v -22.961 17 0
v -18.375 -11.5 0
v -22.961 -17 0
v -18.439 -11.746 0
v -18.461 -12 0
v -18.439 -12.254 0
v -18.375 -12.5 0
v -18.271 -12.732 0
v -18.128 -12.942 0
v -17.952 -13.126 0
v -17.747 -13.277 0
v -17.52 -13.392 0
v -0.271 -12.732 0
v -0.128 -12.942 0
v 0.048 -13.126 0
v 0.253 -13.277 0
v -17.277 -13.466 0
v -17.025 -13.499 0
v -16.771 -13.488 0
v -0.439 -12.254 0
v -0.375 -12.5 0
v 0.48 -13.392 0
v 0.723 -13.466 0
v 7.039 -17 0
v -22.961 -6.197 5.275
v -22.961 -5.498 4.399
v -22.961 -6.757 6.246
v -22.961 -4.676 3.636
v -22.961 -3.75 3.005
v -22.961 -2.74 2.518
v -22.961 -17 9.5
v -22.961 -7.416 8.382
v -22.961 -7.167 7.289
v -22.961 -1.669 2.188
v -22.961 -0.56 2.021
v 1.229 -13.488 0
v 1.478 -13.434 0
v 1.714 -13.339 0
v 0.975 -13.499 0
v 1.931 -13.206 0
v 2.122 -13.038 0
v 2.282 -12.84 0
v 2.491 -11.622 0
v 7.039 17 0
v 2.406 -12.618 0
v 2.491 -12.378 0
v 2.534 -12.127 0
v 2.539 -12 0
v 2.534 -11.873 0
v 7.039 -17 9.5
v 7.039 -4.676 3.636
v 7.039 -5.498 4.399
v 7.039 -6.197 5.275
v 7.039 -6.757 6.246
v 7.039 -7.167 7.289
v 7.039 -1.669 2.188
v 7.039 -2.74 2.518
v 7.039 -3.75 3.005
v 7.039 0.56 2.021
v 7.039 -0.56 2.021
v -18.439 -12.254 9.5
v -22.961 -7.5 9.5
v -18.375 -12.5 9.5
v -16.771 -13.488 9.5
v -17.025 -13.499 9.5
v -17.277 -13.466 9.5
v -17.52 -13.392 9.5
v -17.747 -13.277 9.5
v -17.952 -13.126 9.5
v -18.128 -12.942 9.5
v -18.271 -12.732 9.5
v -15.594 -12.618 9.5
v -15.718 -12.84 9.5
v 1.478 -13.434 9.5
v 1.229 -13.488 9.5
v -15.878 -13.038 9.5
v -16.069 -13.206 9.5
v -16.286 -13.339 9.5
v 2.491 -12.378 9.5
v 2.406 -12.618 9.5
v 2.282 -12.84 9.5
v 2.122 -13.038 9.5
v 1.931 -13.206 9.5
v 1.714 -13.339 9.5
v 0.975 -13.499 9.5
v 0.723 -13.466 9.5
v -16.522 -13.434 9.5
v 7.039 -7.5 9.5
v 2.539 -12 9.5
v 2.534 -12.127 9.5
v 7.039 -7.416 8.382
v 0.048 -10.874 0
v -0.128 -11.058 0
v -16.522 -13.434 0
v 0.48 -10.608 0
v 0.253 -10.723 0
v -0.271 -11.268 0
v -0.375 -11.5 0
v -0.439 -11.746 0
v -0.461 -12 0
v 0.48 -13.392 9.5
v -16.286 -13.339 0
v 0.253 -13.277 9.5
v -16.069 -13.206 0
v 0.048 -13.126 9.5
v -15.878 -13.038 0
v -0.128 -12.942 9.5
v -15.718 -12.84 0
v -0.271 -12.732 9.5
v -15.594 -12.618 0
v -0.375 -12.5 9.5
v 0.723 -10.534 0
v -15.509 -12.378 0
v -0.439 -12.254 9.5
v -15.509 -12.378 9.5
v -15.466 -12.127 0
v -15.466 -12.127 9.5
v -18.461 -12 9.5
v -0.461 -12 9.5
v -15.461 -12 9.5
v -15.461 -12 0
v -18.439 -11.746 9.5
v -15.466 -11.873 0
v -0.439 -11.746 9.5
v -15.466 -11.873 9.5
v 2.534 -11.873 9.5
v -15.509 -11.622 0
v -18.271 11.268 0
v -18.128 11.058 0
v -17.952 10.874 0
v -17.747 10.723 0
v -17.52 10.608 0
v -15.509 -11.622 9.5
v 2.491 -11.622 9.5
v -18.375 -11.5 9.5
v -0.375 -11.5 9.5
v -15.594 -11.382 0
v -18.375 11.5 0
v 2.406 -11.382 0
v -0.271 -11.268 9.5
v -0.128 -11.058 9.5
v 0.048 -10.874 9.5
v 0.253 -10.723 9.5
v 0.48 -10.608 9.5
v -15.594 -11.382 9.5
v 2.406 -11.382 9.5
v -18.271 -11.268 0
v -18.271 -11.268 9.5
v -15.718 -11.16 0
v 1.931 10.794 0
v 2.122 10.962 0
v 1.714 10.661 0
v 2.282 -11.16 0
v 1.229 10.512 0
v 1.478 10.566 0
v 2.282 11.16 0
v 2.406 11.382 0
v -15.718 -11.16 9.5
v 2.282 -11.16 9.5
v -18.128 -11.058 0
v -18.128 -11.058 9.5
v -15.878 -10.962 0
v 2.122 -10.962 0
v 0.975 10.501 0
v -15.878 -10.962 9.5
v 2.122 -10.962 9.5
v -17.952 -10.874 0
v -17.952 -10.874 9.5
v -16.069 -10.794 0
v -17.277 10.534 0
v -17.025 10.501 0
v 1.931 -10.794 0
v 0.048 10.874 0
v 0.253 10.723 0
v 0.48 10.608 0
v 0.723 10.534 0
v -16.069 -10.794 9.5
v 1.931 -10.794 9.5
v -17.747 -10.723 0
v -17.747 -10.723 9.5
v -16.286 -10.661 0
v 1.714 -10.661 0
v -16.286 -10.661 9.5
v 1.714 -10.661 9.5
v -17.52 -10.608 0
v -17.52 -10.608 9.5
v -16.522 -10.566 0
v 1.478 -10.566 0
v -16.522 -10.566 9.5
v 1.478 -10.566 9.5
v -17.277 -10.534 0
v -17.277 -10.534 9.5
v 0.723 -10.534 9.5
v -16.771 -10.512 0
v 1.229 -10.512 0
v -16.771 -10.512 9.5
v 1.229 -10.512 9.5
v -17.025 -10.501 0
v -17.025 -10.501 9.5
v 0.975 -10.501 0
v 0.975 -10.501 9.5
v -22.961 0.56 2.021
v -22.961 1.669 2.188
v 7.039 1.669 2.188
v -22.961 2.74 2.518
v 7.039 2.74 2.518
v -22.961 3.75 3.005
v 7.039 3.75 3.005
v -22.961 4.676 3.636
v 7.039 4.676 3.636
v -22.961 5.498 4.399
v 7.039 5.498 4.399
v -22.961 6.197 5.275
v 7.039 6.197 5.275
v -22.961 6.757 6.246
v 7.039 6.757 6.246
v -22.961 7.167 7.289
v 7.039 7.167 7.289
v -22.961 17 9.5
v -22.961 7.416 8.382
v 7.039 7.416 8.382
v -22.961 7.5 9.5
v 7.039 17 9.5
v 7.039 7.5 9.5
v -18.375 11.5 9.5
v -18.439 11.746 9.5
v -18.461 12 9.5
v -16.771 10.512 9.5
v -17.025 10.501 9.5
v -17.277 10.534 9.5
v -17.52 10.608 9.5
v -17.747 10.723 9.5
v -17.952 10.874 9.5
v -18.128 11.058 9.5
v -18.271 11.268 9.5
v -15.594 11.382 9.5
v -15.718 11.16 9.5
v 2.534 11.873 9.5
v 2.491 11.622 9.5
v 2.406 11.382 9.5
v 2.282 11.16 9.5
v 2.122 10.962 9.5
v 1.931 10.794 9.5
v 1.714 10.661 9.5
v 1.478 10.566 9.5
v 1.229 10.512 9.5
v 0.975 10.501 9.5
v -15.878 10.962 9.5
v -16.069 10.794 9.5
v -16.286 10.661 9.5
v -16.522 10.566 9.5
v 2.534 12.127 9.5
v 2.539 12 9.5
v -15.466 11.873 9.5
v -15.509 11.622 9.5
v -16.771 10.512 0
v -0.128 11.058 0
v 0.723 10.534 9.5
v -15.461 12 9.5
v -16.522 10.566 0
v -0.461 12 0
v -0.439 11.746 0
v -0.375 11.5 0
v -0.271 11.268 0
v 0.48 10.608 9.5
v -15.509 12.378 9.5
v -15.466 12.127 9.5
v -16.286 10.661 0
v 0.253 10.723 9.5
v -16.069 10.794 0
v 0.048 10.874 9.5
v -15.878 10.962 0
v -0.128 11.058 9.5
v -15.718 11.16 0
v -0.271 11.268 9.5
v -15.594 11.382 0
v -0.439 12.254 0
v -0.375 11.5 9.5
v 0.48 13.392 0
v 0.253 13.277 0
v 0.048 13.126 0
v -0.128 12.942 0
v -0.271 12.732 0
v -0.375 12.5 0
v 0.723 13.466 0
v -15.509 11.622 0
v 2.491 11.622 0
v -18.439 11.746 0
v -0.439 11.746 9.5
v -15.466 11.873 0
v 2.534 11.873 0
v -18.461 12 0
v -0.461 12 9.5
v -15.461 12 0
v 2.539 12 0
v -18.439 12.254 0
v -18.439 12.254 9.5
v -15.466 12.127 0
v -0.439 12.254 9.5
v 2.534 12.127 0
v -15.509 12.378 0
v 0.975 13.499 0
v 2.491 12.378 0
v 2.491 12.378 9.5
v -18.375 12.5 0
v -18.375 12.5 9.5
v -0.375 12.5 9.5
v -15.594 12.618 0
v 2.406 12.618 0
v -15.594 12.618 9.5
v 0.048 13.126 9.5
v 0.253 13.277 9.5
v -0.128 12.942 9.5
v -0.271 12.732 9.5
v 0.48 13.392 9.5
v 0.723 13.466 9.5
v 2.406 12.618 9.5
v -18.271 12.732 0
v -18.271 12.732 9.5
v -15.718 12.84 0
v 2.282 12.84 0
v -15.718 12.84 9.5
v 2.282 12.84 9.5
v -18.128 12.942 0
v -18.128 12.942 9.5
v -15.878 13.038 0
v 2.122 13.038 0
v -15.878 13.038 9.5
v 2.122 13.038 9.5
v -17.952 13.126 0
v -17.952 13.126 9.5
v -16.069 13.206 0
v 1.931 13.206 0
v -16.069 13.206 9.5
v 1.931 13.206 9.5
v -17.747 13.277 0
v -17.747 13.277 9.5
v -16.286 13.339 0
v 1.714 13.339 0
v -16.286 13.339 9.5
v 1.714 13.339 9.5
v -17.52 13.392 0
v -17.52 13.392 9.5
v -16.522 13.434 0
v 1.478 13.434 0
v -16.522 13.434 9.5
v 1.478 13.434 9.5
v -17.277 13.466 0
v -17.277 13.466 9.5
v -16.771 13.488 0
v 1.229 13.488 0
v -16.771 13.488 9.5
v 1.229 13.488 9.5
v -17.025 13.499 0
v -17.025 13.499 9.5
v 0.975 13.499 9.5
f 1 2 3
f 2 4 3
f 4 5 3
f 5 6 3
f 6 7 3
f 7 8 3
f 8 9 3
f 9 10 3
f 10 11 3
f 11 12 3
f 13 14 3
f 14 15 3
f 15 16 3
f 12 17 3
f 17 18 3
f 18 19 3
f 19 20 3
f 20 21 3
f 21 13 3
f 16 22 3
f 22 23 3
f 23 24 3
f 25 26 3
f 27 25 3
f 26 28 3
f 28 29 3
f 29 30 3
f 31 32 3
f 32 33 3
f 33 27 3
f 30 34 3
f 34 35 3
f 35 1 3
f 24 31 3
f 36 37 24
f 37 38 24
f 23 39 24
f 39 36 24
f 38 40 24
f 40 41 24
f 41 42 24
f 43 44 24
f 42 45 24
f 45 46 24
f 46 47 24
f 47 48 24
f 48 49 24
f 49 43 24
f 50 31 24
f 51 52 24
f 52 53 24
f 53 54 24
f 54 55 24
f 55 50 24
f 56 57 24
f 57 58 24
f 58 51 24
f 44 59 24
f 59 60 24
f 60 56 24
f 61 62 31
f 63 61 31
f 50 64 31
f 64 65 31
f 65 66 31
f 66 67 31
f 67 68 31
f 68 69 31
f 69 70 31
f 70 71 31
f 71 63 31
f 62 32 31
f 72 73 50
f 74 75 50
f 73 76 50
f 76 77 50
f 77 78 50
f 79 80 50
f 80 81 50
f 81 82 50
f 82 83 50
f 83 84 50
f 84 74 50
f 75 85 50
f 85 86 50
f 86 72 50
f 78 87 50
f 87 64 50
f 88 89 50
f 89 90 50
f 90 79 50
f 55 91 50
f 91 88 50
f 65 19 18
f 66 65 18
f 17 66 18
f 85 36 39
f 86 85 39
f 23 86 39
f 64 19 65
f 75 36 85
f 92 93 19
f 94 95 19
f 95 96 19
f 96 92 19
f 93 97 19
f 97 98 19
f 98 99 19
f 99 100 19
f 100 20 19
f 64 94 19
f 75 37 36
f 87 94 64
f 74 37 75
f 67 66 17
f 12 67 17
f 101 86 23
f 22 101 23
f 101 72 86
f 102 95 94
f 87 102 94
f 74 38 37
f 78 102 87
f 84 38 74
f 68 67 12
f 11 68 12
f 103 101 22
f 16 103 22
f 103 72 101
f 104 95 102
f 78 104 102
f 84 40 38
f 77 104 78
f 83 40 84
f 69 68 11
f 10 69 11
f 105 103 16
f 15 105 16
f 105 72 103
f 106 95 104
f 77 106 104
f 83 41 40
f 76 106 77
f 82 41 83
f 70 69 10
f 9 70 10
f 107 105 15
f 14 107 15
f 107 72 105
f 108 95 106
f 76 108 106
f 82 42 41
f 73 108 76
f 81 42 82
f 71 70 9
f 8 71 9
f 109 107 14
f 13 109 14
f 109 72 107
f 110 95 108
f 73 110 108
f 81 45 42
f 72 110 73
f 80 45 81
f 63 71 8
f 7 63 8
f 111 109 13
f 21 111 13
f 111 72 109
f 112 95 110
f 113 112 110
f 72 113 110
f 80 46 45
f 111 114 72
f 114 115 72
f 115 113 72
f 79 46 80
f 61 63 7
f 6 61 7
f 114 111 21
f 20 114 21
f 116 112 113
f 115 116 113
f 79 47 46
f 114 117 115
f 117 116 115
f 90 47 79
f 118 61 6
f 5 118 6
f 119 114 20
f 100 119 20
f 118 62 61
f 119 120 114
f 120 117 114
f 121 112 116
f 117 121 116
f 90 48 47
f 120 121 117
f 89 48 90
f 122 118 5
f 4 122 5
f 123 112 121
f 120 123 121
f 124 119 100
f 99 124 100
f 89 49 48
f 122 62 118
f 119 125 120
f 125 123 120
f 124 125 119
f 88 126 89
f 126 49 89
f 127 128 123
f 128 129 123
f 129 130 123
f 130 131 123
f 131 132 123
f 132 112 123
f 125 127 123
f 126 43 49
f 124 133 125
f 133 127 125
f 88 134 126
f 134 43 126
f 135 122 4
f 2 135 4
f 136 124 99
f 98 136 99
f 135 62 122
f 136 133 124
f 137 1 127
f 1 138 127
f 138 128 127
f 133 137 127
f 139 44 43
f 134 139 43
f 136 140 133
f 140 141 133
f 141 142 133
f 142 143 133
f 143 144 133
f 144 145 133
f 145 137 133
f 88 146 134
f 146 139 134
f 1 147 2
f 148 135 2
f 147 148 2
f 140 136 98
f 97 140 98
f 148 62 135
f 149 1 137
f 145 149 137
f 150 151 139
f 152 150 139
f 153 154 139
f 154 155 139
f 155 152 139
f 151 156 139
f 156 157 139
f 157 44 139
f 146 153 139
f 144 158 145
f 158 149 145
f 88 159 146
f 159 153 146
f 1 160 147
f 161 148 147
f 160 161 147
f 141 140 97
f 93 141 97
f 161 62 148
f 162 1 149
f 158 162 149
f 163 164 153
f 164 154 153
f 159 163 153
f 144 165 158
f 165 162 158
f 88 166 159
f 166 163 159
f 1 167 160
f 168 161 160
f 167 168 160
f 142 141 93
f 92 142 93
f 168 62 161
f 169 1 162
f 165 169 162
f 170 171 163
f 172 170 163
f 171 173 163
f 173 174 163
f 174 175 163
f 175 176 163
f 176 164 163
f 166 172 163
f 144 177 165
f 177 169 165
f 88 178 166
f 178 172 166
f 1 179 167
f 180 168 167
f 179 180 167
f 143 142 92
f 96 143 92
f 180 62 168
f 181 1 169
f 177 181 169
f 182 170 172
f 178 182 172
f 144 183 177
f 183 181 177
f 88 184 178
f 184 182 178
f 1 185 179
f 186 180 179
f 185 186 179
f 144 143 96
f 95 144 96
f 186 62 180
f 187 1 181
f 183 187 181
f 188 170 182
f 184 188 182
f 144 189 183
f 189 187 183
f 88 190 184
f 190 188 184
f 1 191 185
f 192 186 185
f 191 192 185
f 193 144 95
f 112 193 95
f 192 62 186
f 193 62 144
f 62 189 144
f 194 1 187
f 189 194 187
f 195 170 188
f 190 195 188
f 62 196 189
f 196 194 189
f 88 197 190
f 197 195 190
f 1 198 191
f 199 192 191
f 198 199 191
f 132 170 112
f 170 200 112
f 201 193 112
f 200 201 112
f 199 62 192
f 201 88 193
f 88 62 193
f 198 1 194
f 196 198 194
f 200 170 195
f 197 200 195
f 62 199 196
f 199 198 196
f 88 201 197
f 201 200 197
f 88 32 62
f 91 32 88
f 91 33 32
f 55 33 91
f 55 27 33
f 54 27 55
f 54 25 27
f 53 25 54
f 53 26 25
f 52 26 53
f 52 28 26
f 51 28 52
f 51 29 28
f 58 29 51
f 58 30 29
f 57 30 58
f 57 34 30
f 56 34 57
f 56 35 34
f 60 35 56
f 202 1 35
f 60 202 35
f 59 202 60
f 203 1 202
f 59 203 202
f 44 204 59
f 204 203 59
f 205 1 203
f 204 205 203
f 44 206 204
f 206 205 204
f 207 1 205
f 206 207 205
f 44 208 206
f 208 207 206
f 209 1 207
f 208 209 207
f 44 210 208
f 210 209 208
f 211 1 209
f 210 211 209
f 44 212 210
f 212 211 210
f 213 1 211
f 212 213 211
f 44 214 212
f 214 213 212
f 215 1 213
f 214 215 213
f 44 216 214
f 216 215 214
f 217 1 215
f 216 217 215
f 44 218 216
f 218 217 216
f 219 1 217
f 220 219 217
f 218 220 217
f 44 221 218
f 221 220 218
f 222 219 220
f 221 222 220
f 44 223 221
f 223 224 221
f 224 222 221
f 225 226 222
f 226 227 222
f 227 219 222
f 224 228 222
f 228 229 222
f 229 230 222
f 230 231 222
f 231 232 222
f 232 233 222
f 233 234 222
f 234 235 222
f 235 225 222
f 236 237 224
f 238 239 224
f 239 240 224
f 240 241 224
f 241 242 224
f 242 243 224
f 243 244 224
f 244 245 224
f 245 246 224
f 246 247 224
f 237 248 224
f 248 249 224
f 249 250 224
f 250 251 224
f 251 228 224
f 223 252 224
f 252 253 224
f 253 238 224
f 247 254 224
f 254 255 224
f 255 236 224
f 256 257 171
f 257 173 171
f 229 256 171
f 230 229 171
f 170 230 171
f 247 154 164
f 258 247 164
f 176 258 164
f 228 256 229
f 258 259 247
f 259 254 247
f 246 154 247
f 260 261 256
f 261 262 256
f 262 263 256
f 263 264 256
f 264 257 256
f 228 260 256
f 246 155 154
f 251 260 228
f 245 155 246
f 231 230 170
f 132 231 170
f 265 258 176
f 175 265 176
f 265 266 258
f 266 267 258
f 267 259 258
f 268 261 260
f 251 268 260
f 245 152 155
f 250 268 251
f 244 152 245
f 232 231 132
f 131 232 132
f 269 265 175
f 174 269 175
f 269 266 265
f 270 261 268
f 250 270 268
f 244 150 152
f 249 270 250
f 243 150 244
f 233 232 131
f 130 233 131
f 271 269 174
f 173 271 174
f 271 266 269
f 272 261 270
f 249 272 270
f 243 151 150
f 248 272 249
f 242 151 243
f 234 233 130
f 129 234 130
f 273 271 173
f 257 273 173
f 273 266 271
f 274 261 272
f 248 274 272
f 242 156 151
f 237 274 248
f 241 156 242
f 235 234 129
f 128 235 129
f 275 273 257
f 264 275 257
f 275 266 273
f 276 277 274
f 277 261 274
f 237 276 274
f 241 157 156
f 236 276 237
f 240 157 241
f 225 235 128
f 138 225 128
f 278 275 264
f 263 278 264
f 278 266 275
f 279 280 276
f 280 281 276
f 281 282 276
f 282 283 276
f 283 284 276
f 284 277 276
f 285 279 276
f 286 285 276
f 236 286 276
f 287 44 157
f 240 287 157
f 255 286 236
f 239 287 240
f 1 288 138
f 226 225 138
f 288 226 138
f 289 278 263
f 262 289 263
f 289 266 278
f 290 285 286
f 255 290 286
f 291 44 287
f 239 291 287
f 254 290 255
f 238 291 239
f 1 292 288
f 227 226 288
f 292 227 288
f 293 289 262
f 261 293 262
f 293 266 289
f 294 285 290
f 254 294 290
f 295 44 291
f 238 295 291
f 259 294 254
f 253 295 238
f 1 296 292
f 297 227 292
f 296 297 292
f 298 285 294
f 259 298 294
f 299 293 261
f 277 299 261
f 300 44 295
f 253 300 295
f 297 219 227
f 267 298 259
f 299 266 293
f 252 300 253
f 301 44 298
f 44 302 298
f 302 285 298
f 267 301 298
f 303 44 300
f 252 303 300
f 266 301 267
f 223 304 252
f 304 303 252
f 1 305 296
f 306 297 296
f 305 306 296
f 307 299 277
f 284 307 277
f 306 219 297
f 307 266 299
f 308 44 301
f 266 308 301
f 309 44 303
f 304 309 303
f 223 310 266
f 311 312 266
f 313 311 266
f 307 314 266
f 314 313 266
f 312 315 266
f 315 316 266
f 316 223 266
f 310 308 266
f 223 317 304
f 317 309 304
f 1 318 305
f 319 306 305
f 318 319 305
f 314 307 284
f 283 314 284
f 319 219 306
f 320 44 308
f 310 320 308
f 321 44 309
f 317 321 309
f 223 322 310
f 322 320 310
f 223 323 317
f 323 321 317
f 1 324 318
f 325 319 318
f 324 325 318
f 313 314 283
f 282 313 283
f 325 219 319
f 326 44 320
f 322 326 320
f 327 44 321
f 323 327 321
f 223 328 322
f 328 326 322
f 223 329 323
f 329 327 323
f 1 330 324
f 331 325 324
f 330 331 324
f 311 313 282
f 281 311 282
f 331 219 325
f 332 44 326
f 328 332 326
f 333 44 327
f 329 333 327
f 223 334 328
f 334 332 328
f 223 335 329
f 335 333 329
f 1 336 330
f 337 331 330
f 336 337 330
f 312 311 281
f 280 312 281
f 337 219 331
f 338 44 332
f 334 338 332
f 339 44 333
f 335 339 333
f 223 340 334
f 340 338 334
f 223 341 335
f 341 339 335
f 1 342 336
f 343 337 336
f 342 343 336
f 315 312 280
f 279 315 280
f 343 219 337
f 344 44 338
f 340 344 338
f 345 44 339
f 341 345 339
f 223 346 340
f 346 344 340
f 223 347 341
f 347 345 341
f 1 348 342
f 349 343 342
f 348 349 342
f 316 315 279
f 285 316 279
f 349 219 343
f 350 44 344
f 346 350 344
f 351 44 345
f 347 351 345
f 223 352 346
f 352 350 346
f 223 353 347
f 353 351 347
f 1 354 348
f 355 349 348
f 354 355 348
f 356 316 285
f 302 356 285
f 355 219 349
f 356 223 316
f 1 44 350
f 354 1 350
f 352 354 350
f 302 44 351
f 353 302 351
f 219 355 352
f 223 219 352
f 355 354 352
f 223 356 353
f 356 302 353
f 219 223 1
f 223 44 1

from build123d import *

# Parameters (mm, degrees)
SKETCH_1_W          = 30
SKETCH_1_H          = 34
SKETCH_1_R          = 1.5
EXTRUDE_2_DEPTH     = 9.5
SKETCH_3_R          = 7.5
CUT_EXTRUDE_1_DEPTH = 40


with BuildPart() as part:
    # 草图1 → 凸台-拉伸2 (new body)
    with BuildSketch(Plane.XY):
        with Locations((-7.961038961, 0)):
            Rectangle(SKETCH_1_W, SKETCH_1_H)
        with Locations((1.038961039, 12)):
            Circle(SKETCH_1_R, mode=Mode.SUBTRACT)
        with Locations((-16.961038961, 12)):
            Circle(SKETCH_1_R, mode=Mode.SUBTRACT)
        with Locations((1.038961039, -12)):
            Circle(SKETCH_1_R, mode=Mode.SUBTRACT)
        with Locations((-16.961038961, -12)):
            Circle(SKETCH_1_R, mode=Mode.SUBTRACT)
    extrude(amount=EXTRUDE_2_DEPTH)

    # 草图3 → 切除-拉伸1 (cut)
    with BuildSketch(Plane.ZY.offset(22.961038961)):
        with Locations((9.5, 0)):
            Circle(SKETCH_3_R)
    extrude(amount=-CUT_EXTRUDE_1_DEPTH, mode=Mode.SUBTRACT)


solid = part.part
